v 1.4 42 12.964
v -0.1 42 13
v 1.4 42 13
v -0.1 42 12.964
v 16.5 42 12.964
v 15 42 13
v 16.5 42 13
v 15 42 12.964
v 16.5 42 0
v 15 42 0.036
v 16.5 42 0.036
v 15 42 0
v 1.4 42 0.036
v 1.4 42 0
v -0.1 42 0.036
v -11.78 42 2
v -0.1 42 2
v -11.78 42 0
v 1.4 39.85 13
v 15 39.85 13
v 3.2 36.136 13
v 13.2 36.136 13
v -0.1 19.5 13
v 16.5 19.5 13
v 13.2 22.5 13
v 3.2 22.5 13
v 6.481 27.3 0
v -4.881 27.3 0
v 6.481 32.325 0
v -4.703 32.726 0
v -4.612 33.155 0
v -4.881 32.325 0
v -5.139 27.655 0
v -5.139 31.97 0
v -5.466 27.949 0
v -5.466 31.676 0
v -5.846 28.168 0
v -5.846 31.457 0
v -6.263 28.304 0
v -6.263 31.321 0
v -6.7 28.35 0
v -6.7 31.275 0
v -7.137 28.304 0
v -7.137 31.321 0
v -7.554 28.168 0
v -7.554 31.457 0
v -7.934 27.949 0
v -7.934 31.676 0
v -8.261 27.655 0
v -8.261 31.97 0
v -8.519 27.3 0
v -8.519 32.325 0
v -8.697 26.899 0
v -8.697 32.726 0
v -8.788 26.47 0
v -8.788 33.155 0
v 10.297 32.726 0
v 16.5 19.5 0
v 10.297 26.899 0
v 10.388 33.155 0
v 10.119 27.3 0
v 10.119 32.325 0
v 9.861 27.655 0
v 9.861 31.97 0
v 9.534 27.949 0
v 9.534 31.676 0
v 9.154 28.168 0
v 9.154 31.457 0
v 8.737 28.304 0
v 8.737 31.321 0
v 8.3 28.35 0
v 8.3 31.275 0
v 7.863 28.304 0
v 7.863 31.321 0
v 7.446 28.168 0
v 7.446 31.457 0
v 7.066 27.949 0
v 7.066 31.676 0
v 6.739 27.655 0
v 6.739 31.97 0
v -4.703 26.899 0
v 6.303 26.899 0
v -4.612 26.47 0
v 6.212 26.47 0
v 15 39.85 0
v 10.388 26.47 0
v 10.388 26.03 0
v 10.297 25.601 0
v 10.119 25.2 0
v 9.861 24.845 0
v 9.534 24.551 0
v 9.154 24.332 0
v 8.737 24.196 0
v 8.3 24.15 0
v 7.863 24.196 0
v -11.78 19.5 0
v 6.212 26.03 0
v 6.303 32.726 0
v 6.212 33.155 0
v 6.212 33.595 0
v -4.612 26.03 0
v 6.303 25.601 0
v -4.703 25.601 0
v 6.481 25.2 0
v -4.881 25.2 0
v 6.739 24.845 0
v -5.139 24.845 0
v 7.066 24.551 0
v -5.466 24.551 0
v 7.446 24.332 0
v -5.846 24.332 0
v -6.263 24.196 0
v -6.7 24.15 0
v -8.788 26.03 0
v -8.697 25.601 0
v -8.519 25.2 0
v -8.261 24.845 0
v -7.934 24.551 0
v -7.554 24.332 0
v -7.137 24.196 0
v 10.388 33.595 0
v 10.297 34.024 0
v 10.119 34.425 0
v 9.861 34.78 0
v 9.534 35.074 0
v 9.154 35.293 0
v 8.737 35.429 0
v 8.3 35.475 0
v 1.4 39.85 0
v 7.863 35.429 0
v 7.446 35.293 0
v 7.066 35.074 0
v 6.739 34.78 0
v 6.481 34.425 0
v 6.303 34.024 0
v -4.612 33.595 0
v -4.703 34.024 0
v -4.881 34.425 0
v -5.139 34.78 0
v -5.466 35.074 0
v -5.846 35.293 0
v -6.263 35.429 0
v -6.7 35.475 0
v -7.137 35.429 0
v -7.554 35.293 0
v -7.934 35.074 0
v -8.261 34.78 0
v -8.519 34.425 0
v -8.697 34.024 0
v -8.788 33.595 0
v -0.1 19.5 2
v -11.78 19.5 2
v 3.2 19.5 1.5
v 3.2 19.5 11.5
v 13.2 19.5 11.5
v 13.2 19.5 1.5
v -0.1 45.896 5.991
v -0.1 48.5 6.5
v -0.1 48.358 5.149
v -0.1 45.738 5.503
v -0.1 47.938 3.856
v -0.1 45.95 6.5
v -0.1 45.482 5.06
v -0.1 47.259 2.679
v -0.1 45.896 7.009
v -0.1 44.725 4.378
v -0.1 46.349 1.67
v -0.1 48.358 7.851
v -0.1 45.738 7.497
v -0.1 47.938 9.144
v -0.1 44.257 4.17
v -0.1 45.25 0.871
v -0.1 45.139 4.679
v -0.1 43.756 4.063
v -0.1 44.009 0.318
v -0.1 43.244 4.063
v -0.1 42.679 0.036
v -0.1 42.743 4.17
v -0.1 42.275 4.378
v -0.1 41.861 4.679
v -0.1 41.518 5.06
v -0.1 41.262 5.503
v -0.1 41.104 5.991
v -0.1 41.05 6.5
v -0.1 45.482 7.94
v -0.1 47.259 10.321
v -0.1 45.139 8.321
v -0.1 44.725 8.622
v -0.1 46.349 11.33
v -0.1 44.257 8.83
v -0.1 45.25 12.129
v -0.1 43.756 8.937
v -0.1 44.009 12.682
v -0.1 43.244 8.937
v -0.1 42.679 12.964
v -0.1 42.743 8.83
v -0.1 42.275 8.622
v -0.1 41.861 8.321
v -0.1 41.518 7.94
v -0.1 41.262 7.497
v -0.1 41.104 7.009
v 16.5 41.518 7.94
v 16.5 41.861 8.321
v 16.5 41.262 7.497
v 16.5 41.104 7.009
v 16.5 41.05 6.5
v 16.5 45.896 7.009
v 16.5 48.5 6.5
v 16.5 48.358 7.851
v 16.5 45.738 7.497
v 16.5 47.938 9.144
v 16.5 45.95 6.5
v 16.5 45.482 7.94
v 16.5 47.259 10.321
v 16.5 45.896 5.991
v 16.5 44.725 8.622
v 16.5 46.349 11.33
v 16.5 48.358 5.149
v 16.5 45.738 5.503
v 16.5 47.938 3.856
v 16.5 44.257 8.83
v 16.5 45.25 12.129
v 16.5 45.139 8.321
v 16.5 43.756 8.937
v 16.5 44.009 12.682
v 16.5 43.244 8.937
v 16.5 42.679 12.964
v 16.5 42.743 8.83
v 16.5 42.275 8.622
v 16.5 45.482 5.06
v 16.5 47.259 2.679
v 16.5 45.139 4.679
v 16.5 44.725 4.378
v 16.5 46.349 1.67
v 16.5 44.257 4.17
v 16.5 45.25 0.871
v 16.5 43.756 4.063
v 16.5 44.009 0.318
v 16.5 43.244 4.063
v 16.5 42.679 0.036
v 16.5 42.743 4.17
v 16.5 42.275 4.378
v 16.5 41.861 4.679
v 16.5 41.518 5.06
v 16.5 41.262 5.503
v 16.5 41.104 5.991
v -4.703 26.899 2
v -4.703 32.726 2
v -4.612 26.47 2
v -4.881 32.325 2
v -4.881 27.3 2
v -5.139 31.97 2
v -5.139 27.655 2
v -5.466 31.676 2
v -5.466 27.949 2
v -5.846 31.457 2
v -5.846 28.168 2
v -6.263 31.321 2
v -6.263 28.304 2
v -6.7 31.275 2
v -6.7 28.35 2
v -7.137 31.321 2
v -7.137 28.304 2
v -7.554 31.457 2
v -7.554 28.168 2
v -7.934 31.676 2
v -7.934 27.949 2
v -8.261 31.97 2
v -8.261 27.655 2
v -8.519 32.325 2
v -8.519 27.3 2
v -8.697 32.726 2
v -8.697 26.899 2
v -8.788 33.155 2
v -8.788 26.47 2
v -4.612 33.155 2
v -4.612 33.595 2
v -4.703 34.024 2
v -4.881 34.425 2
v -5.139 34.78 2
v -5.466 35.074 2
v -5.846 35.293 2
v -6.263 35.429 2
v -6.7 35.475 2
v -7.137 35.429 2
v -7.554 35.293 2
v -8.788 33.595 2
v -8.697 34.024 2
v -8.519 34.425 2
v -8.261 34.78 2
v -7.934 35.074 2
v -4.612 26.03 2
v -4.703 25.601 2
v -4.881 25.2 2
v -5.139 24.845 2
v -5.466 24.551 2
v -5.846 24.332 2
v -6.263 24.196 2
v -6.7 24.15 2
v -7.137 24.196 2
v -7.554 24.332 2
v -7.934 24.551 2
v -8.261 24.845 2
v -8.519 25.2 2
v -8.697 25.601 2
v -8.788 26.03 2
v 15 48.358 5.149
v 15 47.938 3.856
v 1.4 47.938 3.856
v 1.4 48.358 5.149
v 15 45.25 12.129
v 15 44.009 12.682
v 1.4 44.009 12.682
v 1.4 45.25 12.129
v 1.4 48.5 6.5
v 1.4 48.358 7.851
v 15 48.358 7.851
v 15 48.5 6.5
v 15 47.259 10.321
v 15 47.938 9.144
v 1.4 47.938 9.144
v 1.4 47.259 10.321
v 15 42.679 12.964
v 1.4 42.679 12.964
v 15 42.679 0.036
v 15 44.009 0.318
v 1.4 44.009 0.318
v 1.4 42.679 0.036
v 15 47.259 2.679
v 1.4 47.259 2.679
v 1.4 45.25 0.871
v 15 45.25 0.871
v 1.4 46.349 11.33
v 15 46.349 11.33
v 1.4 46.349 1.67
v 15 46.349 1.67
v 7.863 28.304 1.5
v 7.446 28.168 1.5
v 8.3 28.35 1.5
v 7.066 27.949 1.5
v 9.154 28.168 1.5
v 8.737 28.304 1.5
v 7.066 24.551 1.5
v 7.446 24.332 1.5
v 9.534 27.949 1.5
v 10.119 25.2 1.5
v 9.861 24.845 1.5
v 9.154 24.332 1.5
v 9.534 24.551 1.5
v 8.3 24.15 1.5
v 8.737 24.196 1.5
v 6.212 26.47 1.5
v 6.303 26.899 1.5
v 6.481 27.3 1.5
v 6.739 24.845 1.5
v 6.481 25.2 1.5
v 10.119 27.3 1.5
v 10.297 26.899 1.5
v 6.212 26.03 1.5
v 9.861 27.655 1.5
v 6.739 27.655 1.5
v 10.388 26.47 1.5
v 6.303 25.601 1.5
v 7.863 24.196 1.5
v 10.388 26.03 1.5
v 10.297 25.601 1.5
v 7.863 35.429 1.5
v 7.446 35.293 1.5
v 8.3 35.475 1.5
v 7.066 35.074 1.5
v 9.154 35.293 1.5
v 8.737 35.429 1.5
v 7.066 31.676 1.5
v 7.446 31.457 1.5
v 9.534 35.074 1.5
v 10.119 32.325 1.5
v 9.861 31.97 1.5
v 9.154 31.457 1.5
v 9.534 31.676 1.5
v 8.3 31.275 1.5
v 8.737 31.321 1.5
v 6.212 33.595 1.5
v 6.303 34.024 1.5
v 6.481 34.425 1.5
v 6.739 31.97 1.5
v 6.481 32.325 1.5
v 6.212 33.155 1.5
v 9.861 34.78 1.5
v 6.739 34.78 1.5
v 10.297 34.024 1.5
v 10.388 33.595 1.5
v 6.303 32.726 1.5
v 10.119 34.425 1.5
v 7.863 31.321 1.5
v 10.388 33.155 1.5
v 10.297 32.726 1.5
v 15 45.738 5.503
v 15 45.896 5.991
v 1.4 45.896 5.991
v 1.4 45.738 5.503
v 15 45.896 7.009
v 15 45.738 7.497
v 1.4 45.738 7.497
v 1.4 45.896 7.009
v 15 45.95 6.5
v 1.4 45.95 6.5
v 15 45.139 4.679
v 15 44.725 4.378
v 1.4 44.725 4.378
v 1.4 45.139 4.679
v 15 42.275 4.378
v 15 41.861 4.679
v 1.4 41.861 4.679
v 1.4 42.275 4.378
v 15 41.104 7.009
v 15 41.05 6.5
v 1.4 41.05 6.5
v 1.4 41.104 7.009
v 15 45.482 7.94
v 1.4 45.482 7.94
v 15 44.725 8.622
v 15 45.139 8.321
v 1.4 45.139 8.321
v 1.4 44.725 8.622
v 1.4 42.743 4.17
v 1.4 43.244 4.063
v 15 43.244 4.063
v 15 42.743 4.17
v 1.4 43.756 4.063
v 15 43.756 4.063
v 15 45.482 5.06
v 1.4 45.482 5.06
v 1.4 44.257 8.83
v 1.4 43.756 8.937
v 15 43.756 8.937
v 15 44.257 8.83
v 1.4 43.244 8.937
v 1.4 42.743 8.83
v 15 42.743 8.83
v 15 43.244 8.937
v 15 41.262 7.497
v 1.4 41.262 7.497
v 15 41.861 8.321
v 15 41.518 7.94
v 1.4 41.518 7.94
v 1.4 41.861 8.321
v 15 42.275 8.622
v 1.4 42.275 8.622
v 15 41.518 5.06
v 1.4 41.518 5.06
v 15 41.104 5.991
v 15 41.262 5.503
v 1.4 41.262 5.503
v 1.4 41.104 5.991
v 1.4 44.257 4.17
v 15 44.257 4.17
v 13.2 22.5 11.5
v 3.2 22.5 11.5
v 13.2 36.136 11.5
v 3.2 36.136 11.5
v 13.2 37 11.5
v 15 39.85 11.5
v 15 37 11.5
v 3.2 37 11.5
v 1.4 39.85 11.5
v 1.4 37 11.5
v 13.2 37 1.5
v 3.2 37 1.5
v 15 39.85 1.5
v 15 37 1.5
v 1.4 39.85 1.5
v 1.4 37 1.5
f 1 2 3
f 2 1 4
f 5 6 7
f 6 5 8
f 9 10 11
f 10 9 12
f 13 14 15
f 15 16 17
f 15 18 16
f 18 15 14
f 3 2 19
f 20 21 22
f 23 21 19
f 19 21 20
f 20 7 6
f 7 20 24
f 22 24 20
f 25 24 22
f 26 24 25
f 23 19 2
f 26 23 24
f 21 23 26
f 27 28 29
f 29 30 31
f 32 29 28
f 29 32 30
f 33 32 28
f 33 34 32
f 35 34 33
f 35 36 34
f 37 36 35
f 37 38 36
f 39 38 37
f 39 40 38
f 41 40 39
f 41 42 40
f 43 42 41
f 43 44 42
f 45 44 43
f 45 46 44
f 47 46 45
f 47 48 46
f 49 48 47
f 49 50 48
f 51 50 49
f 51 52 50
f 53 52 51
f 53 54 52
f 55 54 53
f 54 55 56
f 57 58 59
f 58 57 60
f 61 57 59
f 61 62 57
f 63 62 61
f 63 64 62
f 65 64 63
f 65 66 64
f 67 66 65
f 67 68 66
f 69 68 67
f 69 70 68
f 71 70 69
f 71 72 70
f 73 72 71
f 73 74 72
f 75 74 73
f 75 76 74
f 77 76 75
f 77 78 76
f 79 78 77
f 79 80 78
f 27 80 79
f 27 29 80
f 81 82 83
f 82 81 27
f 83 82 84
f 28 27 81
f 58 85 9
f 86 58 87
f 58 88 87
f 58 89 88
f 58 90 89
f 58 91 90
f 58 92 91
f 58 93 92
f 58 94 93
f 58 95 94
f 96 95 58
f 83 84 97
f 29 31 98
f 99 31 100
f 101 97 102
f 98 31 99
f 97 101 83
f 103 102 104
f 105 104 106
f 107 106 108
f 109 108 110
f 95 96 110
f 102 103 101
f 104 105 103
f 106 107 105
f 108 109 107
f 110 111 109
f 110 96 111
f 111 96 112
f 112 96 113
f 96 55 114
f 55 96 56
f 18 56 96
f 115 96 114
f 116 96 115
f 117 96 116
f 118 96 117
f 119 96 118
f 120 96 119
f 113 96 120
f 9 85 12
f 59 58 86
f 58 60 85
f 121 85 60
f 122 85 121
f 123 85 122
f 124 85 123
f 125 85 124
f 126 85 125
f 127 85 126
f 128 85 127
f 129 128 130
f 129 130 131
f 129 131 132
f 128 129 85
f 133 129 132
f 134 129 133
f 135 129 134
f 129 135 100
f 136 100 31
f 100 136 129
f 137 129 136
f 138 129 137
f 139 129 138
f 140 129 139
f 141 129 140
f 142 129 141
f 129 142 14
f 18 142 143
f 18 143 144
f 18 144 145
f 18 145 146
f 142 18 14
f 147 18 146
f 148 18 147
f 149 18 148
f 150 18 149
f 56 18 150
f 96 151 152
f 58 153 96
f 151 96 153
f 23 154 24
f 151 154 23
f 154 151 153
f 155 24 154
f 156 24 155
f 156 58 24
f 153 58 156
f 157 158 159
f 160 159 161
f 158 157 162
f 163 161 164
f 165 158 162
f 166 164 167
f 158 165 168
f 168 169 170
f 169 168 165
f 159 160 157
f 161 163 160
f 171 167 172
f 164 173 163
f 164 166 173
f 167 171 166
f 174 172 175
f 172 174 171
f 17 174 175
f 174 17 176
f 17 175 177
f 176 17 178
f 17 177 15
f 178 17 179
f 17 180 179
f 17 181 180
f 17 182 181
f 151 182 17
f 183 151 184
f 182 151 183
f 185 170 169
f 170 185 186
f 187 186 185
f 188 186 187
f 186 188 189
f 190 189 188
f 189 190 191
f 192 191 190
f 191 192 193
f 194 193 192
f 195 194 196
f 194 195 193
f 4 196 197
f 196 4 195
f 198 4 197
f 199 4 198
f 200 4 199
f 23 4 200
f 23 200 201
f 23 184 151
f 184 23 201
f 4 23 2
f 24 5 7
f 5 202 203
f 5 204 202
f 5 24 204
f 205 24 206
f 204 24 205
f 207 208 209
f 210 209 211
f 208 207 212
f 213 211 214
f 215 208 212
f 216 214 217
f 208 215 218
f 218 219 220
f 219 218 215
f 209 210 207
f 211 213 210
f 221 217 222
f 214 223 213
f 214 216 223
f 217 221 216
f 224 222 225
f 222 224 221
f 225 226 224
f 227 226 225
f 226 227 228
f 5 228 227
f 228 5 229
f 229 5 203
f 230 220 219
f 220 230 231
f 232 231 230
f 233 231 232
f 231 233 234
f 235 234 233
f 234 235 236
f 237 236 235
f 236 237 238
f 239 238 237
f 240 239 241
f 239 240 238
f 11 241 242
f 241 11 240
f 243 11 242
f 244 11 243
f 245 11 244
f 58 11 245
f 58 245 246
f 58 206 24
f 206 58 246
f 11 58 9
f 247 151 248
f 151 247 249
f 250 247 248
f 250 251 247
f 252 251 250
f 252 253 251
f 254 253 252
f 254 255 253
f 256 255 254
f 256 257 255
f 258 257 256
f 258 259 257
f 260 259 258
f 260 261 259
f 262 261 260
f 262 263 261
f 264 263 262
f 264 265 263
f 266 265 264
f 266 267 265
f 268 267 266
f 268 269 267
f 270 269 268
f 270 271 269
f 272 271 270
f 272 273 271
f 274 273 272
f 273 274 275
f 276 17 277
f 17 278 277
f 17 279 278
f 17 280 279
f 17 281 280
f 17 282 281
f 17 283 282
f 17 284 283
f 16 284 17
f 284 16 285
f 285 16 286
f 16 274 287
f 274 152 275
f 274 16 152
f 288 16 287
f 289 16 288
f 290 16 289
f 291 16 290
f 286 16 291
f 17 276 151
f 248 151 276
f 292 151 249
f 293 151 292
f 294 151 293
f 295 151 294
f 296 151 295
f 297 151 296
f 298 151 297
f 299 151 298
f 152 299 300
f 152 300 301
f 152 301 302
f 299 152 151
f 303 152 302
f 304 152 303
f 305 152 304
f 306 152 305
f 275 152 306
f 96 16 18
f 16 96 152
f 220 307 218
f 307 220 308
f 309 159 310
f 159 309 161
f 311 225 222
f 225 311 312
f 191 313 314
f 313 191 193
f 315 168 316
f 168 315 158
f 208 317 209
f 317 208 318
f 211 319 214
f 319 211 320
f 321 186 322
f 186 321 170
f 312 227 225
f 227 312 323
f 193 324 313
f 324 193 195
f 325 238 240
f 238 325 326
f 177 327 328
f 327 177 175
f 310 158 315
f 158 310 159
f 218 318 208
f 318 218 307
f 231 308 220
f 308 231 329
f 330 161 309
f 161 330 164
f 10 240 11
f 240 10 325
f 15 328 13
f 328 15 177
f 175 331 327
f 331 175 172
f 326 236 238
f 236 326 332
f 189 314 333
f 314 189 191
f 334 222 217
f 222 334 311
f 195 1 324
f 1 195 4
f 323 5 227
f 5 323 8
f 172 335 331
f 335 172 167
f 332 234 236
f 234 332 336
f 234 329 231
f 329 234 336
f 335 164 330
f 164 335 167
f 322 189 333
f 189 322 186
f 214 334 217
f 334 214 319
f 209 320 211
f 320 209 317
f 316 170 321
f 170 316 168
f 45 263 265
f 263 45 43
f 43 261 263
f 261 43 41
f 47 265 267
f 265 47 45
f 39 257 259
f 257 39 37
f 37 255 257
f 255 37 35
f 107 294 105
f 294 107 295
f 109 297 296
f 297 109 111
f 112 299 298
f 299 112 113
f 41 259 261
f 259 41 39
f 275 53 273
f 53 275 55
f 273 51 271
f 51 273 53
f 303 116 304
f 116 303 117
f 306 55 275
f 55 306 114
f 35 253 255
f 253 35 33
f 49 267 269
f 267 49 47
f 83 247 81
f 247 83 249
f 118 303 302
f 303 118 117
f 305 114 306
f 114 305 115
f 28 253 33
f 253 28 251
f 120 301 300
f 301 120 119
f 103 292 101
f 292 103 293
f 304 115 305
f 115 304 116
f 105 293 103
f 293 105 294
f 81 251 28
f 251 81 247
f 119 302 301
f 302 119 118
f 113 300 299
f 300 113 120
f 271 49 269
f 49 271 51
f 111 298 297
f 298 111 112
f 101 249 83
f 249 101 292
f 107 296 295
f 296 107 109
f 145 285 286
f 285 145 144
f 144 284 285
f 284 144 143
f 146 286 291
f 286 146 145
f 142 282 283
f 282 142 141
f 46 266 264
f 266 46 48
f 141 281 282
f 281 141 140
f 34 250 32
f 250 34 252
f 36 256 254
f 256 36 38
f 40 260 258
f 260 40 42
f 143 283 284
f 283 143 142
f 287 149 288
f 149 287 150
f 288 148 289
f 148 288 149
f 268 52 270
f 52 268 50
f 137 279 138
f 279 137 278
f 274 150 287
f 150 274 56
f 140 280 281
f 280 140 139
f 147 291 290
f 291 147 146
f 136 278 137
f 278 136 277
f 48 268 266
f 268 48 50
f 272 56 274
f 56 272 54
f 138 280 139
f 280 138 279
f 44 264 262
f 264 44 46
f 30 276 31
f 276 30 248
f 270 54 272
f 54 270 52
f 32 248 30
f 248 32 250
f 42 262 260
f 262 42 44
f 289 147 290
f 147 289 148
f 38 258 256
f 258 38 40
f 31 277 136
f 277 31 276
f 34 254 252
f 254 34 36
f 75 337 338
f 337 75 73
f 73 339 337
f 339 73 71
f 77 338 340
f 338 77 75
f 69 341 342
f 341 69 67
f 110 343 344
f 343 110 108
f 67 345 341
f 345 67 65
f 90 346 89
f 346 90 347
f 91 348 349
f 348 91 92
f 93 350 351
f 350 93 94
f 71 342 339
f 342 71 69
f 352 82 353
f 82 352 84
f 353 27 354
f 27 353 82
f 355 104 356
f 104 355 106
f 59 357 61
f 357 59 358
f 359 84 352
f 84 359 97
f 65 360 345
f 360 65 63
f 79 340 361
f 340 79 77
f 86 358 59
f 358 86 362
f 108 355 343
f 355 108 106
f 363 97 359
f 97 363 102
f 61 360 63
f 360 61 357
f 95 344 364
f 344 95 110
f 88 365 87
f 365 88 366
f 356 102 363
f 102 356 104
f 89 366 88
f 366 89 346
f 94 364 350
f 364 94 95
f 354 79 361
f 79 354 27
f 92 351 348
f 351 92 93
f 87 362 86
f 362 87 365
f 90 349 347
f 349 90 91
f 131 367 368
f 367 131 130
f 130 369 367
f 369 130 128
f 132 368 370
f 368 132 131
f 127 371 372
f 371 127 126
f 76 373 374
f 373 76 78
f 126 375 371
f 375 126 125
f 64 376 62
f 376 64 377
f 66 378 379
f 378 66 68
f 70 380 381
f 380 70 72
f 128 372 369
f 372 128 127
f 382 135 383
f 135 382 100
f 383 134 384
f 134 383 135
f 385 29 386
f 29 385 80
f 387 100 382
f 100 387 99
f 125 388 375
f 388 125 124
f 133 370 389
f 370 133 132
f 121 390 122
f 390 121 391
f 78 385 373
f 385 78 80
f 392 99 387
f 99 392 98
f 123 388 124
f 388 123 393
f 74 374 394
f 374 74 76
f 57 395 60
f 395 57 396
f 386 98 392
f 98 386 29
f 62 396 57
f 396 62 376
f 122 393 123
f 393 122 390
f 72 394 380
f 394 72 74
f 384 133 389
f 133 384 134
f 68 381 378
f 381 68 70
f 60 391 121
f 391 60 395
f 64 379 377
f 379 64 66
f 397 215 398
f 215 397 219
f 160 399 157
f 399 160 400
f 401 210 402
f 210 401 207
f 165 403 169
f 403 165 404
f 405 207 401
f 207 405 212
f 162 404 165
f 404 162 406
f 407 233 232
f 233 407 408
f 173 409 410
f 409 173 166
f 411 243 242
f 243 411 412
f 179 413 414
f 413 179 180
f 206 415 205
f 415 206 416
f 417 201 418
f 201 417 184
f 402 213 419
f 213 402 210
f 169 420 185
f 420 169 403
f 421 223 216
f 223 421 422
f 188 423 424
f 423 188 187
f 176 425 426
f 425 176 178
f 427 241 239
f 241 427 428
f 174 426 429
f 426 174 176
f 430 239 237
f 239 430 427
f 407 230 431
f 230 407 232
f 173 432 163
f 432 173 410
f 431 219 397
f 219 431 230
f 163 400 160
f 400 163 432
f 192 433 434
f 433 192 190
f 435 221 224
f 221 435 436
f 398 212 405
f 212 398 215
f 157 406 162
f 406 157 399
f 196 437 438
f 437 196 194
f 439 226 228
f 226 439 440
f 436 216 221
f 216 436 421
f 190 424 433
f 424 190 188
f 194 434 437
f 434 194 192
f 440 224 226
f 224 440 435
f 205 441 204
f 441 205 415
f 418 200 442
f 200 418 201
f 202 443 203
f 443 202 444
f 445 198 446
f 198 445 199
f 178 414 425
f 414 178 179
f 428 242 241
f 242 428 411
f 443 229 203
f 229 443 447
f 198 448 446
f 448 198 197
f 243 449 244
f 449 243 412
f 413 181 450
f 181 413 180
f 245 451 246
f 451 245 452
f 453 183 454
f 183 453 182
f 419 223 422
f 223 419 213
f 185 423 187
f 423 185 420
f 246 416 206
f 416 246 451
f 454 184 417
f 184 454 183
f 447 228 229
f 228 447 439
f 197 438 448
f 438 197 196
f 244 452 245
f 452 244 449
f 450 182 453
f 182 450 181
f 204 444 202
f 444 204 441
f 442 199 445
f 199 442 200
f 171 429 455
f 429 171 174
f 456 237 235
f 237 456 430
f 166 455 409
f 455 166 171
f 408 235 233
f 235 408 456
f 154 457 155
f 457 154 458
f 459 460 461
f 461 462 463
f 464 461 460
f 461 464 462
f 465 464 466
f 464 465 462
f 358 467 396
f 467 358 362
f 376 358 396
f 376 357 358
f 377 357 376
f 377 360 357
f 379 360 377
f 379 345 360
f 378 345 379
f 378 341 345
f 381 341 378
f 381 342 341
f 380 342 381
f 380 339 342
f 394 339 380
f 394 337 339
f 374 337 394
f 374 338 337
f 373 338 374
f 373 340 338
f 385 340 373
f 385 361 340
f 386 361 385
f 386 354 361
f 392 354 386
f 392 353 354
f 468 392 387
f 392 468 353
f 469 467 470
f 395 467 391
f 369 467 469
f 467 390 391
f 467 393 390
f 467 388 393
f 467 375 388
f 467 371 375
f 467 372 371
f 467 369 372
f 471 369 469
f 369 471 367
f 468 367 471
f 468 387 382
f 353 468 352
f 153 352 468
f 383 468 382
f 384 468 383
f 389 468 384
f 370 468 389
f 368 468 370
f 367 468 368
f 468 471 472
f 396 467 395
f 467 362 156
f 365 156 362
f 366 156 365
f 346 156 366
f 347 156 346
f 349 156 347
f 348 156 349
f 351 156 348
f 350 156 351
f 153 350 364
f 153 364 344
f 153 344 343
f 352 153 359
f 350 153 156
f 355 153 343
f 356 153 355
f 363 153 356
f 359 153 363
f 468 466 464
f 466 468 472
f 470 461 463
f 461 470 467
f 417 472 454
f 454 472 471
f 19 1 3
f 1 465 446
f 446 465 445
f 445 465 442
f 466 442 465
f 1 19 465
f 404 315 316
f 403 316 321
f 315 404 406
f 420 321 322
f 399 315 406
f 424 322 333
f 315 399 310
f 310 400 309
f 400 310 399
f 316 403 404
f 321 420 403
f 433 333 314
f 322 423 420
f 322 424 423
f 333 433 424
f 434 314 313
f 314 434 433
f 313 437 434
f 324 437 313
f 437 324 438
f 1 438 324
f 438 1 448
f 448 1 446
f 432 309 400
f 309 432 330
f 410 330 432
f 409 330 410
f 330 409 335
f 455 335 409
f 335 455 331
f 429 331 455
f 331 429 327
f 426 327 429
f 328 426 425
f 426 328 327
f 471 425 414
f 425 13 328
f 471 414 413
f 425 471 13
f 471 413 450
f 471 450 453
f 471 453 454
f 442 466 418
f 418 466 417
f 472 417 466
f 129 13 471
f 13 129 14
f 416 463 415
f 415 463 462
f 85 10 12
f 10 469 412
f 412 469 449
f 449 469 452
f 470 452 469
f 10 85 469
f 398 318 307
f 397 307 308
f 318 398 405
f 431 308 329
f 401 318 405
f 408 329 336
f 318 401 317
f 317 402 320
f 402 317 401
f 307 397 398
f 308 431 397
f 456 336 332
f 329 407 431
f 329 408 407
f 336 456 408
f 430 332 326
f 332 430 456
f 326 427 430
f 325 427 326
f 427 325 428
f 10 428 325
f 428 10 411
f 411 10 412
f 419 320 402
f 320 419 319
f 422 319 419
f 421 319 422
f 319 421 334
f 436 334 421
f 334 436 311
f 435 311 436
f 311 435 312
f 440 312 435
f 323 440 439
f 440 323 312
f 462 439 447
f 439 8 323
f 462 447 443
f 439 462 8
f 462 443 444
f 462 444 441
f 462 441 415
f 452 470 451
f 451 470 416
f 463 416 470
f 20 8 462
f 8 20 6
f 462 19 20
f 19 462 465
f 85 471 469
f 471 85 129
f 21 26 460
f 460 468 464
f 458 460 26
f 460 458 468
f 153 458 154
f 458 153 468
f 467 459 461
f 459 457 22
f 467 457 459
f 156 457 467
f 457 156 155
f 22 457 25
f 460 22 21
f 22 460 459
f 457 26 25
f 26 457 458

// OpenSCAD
//
// PARAMETRIC Cable Chain v0.5
// Zerginator 10/2015
//



use <text_on.scad>

$fn = 30;

ChainDef = [[1,0]];
//ChainDef = [[1,0],[1,0],[1,0],[1,0],[1,0],[1,0],[1,0],[1,0],[1,0],[1,0],[1,30],[1,30],[1,30],[1,30],[1,30],[1,30],[1,0],[1,0],[1,0],[1,0],[1,0],[1,0],[1,0]];


// ===============================================================================
// Type
Type        =       2;         // 1: +45° Bewegbar, 2: +-45°
Round       =       1;         // Runder oder eckiger Typ

// ===============================================================================
// box parameters
width       =       16.6;       // width of the chainlink (Standard: 16.6)
height      =       13;         // height of the chainlink (Standard: 13)
length      =       30;         // length of the chainlink  (Standard: 25, min 30 für Eckig)


// ===============================================================================
// === OUTPUT


// ===Check Consistency of Values
if((!Type && !Start && !End) || ((Round != 1) && (length/height<2.2)))
{
    // === IDIOT BOX (if imposible values were selected)
    cube([30,30,30]);
    color("red")
    text_on_cube("Doh!!", locn_vec=[15,15,15], cube_size=30, face="top", size=5, center=true); 
    color("red")
    text_on_cube("Error!!", locn_vec=[15,15,15], cube_size=30, face="front", size=5, center=true);   
    color("red")
    text_on_cube("Fehler!!", locn_vec=[15,15,15], cube_size=30, face="right", size=4, center=true);   
    color("red")
    text_on_cube("Défaut!!", locn_vec=[15,15,15], cube_size=30, face="left", size=4, center=true);   
    color("red")
    text_on_cube("ошибка!!", locn_vec=[15,15,15], cube_size=30, face="back", size=4, center=true); 
    color("red")
    text_on_cube("错误!!", locn_vec=[15,15,15], cube_size=30, face="bottom", size=4, center=true);     
}

else
    
// === Put the Chainlinks together to a single Cablechain
{
    if( Round == 1)
    {
        vec = select2(ChainDef,[1]);
        for (i = [1:len(ChainDef)]) { 
            c = sumv(vec,i-1,0);
            a = coslength(i,ChainDef,vec); 
            b = sinlength(i,ChainDef,vec); 

            pcsOChain(width, length, height, 0, a, b, c);
        }
    }

}


// ===============================================================================
// === Mathematikfunktionen
function sumv(v,i,s=0) = (i==s ? v[i] : v[i] + sumv(v,i-1,s));
function select(source_vector,select_vector)=
   [ for (i = [0 : len(select_vector) - 1]) source_vector[select_vector[i]] ];
function select2(source_vector,select_vector)=
   [ for (i = [0 : len(source_vector) - 1]) source_vector[i][1] ];
function coslength(j,ChainDef,vec,s=1)=
   (j==s ? (((height/13)*(length-10.5)) * cos(sumv(vec,j-1,0)-ChainDef[j-1][1])) : (((height/13)*(length-10.5))) * cos(sumv(vec,j-1,0)-ChainDef[j-1][1]) + coslength(j-1,ChainDef,vec));  
   
function sinlength(j,ChainDef,vec,s=1)=
   (j==s ? ((height/13)*(length-10.5))*(sin(sumv(vec,j-1,0)-ChainDef[j-1][1])) : ((height/13)*(length-10.5))*(sin(sumv(vec,j-1,0)-ChainDef[j-1][1])) + sinlength(j-1,ChainDef,vec));


// ===============================================================================
// === Generate Chain module
module pcsOChain(width, length, height, posx,posy,posz, ChainAngle) 
    {    
        translate([posx,posy,posz])
        translate([0,(height/13)*4.5,(height/13)*6.5])  
        rotate(a=ChainAngle, v=[1,0,0])
        translate([0,-(height/13)*4.5,-(height/13)*6.5])  
        if (Round != 1)
        {
            pcsMiddlePart(width, length, height);
            pcsOFront(width, length, height);
            translate([0,length - height - overlapping,0]) pcsOBack(width, length, height);
        }
        else
        {
            CableChain(width, length, height);
        }
    }





// ===============================================================================
// ===============================================================================
// ===============================================================================




// ===============================================================================
// === Cable Chain (Rund)

module CableChain(width, length, height)
{
translate([width,0,0])
rotate(a=90, v=[0,0,1])
difference()
    {
    union()
        {
        difference()
            {
                union()
                   {
                    translate([0,0.1,0])
                        rotate(a=0, v=[0,0,1])
                            cube([(height/13)*(length-7.5),width,(height/13)*13]);
                    translate([0,15.1,0])
                        rotate(a=0, v=[0,0,1])
                            cube([(height/13)*(length-7.5),width * 0.8,2]);
                    translate([(height/13)*(length-7.5),0.1,(height/13)*6.5])
                        rotate(a=90, v=[-1,0,0])
                            cylinder(r=(height/13)*6.5, h=width);
                   }
                   
                translate([length / 8 * 1.8, 15 + width / 2, 0]) cylinder(d=4.2,h=height);
                translate([length / 8 * 3.7, 15 + width / 2, 0]) cylinder(d=4.2,h=height);
                translate([length / 8 * 1.8, width / 2, 0]) cylinder(d=4.2,h=height);
                translate([length / 8 * 3.7, width / 2, 0]) cylinder(d=4.2,h=height);
                /*
                hull()
                {
                    translate([length / 8, width / 2, 0]) cylinder(d=2.5,h=height);
                    translate([length / 8 * 3, width / 2, 0]) cylinder(d=2.5,h=height);
                }
                */

                union()
                    {
                    union()
                        {
                        if (Type == 1)
                        {
                            translate([(height/13)*-0.8,-1,(height/13)*6.4])
                                rotate(a=35, v=[0,-1,0])
                                    cube([(height/13)*9,width+1.5,(height/13)*5]);
                            translate([(height/13)*3.2,-1,(height/13)*9.9])
                                rotate(a=0, v=[0,0,1])
                                    cube([(height/13)*7,width+1.5,(height/13)*4]);
                        }
                        /*translate([(height/13)*4.6,2,(height/13)*6.5])
                            rotate(a=90, v=[1,0,0])   
                                cylinder(r=(height/13)*6.85, h=3);
                        */
                        //FEMALE
                            translate([(height/13)*(length-6),width+0.5,(height/13)*6.5])
                                rotate(a=90, v=[1,0,0])   
                                    cylinder(r=(height/13)*2.45, h=width+0.9);
                         /*translate([(height/13)*4.6,width+1.3,(height/13)*6.5])
                            rotate(a=90, v=[1,0,0])   
                                cylinder(r=(height/13)*6.85, h=3);*/
                        
                        }
                    /*difference()
                        {
                        translate([0,-0.5,0])
                            rotate(a=0, v=[0,0,1])
                                cube([(height/13)*5,width+0.9,(height/13)*4]);
                        {
                        translate([(height/13)*5,width+0.4,(height/13)*5.5])
                            rotate(a=90, v=[1,0,0])   
                                cylinder(r=(height/13)*5.5, h=width+0.9);
                            }
                        }*/
                    if (Type == 2)
                        {
                        /*difference()
                            {
                            translate([0,-0.5,9])
                                rotate(a=0, v=[0,0,1])
                                    cube([(height/13)*5,width+0.9,(height/13)*4]);
                            {
                            translate([(height/13)*5,width+0.4,(height/13)*7.5])
                                rotate(a=90, v=[1,0,0])   
                                    cylinder(r=(height/13)*5.5, h=width+0.9);
                                }
                            }*/
                        }
                    }
                }
                
                // MALE
                /*difference()
                {
                    translate([(height/13)*4.5,width-0.3,(height/13)*6.5])
                        rotate(a=90, v=[1,0,0])   
                            cylinder(r=(height/13)*1.85, h=width-0.8); 
                    translate([(height/13)-1,-2,(height/13)*4.5])
                        rotate(a=-20, v=[0,0,1])
                            cube([4,4,4]);
                    translate([(height/13)-1,18.8,(height/13)*4.5]) //2.5
                            rotate(a=-70, v=[0,0,1]) //-15
                                cube([4,4,4]);
                } */
        } 
        
    union()
        {
            translate([(height/13)*-1,3.4,1.5])
                rotate(a=0, v=[0,0,1])
                    cube([(height/13)*(length+1),width-6.6,height-3]);
            translate([(length / 10),3.4,(height/13)*3.5])
                rotate(a=0, v=[0,0,1])
                    cube([length / 2.2,width-6.6,(height/13)*10]);    
            
            if (Type == 1)
            {
                translate([(height/13)*-1,3.4,(height/13)*-1.5])
                    rotate(a=0, v=[0,0,1])
                        cube([(height/13)*8,width-6.6,(height/13)*13]);
                translate([(height/13)*(length-12.5),1.6,(height/13)*9.7])
                    rotate(a=-60, v=[1,0,0])
                        cube([(height/13)*11,3,3]);  
                translate([(height/13)*(length-12.5),width-1.4,(height/13)*9.7])
                    rotate(a=150, v=[1,0,0])
                        cube([(height/13)*11,3,3]);
                translate([(height/13)*(length-12.5),1.6,1.5])
                    rotate(a=0, v=[0,0,1])
                        cube([(height/13)*6,width-3,((height/13)*8.2)+((height/13)*1.5-1.5)]);
                translate([(height/13)*(length-9.65),1.6,0])
                    rotate(a=0, v=[0,0,1])
                        cube([(height/13)*10,width-3,(height/13)*9.7]);
            }
            
            if (Type == 2)
            {
            /*translate([(height/13)*-1,3.4,(height/13)*-1.5])
                    rotate(a=0, v=[0,0,1])
                        cube([(height/13)*8,width-6.6,(height/13)*16]);*/
            translate([(height/13)*(length-12.5),1.6,1.5])
                    rotate(a=0, v=[0,0,1])
                        cube([(height/13)*6,width-3,height-3]);

            translate([(height/13)*(length-9.65),1.6,0])
                rotate(a=0, v=[0,0,1])
                    cube([(height/13)*10,width-3,(height/13)*13]);
            }
        }
    }    
    
} // END CABLE CHAIN RUND
